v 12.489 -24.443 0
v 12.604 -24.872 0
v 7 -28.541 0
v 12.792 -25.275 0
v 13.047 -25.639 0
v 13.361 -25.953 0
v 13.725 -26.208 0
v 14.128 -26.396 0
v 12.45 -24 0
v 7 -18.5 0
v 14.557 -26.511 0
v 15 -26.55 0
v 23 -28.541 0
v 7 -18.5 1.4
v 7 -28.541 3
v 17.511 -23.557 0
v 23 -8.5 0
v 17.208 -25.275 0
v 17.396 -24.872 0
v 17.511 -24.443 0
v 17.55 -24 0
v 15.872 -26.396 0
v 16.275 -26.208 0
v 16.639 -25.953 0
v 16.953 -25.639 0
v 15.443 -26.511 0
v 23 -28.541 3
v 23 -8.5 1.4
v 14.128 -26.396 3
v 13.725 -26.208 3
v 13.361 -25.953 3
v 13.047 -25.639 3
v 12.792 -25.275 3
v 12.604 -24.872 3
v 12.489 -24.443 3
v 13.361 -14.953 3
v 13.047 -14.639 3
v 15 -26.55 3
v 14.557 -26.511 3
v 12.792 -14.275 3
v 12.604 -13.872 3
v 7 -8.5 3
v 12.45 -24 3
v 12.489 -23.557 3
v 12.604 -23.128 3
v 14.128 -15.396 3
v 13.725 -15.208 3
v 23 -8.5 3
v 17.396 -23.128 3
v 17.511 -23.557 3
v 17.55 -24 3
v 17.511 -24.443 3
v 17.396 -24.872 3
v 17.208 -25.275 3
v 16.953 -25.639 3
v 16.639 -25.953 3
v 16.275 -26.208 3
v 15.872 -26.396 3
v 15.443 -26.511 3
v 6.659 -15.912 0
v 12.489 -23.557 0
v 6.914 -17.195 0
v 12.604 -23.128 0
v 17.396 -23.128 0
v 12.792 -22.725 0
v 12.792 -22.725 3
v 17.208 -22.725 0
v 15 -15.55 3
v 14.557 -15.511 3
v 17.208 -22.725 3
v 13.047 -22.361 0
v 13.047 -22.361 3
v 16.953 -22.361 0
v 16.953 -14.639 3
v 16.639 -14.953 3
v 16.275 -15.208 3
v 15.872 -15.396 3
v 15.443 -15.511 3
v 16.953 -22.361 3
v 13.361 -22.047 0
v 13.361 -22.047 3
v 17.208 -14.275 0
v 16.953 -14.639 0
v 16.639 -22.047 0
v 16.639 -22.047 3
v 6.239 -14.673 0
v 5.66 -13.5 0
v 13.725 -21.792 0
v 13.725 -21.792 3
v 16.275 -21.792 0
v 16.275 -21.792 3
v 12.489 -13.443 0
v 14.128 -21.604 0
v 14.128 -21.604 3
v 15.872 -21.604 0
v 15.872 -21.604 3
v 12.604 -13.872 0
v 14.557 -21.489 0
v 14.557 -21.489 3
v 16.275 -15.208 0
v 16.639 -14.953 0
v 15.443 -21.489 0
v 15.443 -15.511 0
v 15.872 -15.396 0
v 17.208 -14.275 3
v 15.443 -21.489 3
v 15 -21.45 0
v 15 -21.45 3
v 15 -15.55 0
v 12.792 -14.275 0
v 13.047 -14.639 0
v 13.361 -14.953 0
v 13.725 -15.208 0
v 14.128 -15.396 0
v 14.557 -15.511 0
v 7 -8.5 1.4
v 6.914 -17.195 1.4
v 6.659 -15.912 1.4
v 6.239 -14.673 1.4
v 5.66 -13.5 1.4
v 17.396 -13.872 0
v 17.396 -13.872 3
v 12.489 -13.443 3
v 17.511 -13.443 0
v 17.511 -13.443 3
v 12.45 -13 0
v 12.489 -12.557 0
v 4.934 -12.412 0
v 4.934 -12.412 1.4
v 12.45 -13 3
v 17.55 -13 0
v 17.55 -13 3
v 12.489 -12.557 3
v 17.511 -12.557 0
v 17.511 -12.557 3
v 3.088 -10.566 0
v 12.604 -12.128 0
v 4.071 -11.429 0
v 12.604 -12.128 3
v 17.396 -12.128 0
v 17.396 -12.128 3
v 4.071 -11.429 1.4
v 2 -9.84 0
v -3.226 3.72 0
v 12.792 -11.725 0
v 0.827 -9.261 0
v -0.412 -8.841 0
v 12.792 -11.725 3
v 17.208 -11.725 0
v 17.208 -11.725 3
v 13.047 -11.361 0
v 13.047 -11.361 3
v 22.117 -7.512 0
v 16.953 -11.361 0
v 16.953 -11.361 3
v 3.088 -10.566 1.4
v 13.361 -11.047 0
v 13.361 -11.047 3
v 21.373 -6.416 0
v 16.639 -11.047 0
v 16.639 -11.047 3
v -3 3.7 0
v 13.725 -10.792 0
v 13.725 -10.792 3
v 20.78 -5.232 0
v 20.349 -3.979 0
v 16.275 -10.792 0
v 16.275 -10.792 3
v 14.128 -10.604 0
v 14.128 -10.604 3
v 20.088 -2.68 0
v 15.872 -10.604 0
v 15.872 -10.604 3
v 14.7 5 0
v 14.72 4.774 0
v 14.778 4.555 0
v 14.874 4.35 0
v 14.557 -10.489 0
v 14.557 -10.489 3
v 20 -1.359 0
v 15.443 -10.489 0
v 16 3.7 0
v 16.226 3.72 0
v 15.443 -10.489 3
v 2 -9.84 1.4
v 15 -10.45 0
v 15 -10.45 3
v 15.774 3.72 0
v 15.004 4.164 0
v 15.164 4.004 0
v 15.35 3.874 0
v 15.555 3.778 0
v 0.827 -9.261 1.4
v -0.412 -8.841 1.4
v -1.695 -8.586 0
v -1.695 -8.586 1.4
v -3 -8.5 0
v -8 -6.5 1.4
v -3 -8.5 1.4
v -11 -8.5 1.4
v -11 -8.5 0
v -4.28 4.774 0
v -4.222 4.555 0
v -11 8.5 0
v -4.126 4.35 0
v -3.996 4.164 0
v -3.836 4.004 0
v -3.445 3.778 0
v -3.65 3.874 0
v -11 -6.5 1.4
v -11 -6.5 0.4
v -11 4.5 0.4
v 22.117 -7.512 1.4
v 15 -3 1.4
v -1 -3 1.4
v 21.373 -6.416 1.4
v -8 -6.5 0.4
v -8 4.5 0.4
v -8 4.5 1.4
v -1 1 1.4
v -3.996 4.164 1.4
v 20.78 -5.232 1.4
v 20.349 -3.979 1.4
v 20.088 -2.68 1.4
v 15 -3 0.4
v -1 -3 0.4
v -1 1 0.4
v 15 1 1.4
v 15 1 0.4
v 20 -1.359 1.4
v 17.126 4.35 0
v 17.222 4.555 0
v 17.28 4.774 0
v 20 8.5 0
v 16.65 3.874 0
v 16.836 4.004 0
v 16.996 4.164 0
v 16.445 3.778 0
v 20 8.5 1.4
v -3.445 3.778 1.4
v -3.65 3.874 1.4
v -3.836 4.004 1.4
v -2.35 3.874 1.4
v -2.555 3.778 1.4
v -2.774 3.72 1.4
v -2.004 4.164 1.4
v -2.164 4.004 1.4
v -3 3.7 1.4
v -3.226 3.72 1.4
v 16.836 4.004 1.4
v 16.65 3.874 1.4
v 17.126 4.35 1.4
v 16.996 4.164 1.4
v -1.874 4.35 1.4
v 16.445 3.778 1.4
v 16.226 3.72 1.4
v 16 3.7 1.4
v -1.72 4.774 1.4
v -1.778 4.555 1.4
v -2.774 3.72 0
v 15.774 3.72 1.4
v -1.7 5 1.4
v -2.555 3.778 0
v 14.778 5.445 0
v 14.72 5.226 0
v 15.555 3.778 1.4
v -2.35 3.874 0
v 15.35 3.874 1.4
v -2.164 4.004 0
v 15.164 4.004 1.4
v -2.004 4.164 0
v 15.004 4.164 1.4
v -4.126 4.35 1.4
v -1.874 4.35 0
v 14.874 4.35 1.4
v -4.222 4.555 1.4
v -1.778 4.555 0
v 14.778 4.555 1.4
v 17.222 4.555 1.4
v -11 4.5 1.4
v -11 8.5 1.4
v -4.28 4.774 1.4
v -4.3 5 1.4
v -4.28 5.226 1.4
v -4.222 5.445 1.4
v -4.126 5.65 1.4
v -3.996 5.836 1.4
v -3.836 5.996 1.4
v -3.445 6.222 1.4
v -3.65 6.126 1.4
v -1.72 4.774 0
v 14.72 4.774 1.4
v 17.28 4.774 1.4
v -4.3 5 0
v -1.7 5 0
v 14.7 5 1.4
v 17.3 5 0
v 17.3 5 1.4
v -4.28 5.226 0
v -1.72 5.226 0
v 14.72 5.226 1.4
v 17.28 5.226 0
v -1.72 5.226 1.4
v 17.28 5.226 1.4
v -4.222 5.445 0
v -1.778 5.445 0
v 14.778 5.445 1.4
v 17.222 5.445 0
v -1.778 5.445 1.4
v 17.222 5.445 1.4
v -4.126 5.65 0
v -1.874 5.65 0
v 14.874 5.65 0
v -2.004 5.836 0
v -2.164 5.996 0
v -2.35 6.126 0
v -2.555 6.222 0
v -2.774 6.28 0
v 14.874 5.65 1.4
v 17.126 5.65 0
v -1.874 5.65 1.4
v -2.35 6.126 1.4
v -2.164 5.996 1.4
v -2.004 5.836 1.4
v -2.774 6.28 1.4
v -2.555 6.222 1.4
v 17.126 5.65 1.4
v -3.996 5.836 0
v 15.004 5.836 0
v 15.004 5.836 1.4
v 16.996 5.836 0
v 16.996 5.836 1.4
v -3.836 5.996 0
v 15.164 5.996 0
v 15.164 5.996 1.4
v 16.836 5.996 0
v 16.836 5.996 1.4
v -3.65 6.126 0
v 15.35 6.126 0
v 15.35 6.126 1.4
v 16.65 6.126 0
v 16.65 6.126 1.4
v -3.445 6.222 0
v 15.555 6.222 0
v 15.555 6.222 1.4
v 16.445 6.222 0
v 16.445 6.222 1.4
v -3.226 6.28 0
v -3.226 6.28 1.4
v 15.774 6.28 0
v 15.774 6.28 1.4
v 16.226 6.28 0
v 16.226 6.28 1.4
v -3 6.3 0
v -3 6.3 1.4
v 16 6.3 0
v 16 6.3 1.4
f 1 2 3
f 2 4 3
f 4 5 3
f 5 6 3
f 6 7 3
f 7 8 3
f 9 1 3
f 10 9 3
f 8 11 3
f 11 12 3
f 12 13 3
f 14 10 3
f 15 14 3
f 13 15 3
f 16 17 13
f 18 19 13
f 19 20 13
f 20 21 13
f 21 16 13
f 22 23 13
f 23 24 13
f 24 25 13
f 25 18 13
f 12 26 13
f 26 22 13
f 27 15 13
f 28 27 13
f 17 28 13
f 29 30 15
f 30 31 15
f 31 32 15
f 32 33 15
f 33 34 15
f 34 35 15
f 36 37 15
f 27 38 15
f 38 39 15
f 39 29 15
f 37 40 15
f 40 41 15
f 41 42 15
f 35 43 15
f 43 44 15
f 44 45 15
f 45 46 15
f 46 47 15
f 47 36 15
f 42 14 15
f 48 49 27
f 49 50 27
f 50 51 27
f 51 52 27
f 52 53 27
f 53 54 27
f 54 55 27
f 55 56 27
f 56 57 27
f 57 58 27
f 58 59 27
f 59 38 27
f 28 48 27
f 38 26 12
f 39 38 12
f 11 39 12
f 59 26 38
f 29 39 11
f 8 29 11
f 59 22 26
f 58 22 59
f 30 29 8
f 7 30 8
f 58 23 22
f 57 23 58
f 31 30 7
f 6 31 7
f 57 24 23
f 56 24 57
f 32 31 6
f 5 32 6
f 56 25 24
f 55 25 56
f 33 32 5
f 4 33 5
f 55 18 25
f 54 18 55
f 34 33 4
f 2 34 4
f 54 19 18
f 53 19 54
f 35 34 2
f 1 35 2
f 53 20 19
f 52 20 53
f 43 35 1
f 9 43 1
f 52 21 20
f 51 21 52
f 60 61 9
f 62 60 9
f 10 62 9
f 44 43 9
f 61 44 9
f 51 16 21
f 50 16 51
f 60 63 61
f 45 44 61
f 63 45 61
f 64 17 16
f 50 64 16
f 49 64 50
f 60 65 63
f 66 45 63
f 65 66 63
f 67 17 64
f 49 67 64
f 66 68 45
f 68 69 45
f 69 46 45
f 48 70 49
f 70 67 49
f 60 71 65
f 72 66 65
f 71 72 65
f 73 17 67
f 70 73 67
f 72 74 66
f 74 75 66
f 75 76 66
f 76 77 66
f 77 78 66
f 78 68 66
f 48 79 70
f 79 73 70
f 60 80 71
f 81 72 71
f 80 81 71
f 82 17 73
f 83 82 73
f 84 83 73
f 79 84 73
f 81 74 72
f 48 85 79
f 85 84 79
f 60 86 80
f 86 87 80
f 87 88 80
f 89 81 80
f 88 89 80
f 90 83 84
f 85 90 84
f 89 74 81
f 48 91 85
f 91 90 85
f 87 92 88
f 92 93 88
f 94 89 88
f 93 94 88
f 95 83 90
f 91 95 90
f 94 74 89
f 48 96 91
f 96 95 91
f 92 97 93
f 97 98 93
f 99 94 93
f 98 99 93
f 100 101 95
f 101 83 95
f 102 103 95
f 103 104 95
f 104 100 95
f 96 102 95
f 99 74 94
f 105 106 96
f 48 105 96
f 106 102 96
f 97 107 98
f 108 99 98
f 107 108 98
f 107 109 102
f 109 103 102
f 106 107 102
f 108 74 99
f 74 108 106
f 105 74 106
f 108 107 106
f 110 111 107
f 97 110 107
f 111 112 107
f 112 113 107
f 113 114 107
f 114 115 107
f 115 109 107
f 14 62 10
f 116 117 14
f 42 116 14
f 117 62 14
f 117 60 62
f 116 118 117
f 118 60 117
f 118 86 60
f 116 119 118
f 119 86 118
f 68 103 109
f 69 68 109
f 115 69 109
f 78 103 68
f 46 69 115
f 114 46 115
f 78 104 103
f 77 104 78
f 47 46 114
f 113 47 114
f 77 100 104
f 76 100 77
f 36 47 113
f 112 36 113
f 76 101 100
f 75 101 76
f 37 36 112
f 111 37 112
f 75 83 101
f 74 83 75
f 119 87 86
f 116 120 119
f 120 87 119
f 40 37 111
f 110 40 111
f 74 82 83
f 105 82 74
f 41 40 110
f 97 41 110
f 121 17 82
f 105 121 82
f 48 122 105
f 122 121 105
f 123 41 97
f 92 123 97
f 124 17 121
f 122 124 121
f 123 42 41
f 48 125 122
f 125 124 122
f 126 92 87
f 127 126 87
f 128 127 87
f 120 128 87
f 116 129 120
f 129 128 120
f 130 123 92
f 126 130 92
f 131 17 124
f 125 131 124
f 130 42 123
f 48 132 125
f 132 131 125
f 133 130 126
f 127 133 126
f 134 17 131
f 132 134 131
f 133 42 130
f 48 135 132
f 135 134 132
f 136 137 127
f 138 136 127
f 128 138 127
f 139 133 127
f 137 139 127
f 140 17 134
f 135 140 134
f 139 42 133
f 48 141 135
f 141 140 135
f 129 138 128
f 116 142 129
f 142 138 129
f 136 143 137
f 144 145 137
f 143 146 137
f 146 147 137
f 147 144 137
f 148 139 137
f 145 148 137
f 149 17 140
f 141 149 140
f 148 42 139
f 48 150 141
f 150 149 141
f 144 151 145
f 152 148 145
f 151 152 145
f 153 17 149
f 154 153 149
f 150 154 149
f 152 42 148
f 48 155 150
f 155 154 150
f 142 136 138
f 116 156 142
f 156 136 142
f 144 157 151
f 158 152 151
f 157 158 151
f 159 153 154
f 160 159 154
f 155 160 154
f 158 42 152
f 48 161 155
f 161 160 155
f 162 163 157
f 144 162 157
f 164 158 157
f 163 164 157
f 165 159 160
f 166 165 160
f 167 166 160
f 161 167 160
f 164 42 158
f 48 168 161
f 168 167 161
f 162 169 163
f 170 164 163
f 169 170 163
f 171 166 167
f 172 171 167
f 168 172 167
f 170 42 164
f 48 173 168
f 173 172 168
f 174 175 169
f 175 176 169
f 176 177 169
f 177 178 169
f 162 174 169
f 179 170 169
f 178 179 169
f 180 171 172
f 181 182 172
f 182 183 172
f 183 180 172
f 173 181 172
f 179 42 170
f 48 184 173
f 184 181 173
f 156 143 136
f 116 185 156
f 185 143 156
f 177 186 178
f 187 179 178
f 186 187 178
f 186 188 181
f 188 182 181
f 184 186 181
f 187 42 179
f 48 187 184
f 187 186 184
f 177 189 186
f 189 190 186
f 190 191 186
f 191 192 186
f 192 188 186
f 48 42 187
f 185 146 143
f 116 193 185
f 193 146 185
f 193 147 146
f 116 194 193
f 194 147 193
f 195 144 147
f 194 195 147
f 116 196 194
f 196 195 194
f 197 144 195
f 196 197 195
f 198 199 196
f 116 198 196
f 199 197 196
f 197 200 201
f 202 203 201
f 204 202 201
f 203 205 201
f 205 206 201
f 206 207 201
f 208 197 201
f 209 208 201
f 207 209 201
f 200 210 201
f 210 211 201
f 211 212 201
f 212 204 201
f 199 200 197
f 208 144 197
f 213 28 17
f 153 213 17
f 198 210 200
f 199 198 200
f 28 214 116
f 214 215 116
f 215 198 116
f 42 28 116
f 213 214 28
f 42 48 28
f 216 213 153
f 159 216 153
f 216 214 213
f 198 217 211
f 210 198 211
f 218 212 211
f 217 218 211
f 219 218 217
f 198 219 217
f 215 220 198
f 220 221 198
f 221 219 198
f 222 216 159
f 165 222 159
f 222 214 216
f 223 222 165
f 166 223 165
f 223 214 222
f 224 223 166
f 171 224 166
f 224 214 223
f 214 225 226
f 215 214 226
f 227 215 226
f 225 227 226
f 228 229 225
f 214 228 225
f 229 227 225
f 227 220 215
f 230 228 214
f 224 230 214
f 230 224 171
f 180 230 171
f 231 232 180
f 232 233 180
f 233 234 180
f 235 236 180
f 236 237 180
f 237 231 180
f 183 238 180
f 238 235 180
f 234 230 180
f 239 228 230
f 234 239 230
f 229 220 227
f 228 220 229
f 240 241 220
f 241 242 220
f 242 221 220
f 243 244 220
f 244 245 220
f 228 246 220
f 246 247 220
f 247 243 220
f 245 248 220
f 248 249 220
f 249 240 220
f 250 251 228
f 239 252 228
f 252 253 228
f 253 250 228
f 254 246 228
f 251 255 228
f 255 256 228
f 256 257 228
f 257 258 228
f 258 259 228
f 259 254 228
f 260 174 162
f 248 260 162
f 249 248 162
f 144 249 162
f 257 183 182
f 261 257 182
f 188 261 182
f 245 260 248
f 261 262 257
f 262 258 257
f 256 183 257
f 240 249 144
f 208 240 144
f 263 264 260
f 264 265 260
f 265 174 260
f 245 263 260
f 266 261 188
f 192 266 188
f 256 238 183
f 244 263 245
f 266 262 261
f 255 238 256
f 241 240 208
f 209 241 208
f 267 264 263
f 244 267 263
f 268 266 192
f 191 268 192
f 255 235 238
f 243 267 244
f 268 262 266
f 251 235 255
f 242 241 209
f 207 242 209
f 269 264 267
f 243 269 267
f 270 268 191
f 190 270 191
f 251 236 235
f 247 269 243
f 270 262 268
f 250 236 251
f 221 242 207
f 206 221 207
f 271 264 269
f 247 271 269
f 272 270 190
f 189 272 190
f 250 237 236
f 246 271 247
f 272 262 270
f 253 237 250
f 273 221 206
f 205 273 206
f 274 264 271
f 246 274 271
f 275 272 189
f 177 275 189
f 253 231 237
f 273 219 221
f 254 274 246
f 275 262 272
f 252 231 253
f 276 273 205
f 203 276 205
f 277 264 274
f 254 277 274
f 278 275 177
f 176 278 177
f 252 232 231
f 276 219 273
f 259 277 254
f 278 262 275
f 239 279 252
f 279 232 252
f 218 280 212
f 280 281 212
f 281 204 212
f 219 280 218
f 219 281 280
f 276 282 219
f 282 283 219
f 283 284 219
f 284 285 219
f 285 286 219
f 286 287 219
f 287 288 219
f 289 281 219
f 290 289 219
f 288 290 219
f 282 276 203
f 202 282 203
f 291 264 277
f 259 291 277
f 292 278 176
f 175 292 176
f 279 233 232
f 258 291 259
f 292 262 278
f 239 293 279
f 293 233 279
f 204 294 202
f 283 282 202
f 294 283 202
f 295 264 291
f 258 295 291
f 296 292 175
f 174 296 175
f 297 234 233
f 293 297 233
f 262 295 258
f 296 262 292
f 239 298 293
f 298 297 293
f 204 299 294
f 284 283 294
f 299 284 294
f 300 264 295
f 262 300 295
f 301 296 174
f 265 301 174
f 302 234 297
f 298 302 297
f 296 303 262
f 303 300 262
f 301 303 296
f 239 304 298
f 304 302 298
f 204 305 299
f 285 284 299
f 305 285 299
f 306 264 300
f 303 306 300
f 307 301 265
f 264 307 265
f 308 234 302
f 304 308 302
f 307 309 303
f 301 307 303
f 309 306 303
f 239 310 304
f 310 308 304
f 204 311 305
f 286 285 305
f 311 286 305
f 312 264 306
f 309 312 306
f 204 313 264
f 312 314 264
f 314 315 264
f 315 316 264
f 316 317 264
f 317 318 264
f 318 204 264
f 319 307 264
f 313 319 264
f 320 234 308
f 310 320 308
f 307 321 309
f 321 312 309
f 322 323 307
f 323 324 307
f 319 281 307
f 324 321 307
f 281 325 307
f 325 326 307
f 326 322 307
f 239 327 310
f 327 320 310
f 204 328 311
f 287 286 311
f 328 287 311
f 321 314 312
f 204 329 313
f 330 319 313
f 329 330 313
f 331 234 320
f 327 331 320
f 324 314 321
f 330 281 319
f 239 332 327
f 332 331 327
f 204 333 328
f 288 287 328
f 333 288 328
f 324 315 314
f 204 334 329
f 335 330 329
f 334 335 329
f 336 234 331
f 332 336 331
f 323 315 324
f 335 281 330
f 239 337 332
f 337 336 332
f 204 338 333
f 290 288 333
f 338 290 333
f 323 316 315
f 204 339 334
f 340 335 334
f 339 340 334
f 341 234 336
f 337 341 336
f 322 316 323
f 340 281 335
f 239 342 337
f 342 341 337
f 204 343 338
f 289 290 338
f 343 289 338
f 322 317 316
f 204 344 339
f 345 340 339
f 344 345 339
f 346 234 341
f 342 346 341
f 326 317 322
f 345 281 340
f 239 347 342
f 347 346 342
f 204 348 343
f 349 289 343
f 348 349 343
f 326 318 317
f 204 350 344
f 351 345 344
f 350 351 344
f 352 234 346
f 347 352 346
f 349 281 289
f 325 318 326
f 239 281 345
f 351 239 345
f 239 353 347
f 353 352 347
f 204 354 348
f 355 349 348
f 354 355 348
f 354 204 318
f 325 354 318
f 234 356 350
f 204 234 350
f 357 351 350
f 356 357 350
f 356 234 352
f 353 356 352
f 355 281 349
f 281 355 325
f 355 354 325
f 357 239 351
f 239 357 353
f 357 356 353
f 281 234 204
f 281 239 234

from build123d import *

# Parameters (mm, degrees)
SKETCH1_W           = 40
SKETCH1_H           = 17
BOSS_EXTRUDE1_DEPTH = 1.4
CUT_EXTRUDE1_START  = 1.4
SKETCH3_W           = 16
SKETCH3_H           = 4
SKETCH3_W_2         = 3
SKETCH3_H_2         = 11
CUT_EXTRUDE1_DEPTH  = 1
SKETCH4_R           = 1.3
CUT_EXTRUDE2_DEPTH  = 11
SKETCH7_W           = 9
SKETCH7_H           = 17
CUT_EXTRUDE5_DEPTH  = 21
SKETCH9_W           = 16
SKETCH9_H           = 20.041444064
SKETCH9_R           = 2.55
BOSS_EXTRUDE3_DEPTH = 3
FILLET1_R           = 10


with BuildPart() as part:
    # Sketch1 → Boss-Extrude1 (new body)
    with BuildSketch(Plane.XY):
        Rectangle(SKETCH1_W, SKETCH1_H)
    extrude(amount=BOSS_EXTRUDE1_DEPTH)

    # Sketch3 → Cut-Extrude1 (cut)
    with BuildSketch(Plane.XY.offset(CUT_EXTRUDE1_START)):
        with Locations((7, -1)):
            Rectangle(SKETCH3_W, SKETCH3_H)
        with Locations((-9.5, -1)):
            Rectangle(SKETCH3_W_2, SKETCH3_H_2)
    extrude(amount=-CUT_EXTRUDE1_DEPTH, mode=Mode.SUBTRACT)

    # Sketch4 → Cut-Extrude2 (cut)
    with BuildSketch(Plane.XY):
        with Locations(Location((16, 5, 0), (0, 0, 180))):
            Circle(SKETCH4_R)
        with Locations(Location((-3, 5, 0), (0, 0, 180))):
            Circle(SKETCH4_R)
    extrude(amount=CUT_EXTRUDE2_DEPTH, mode=Mode.SUBTRACT)

    # Sketch7 → Cut-Extrude5 (cut)
    with BuildSketch(Plane.XY):
        with Locations((-15.5, 0)):
            Rectangle(SKETCH7_W, SKETCH7_H)
    extrude(amount=CUT_EXTRUDE5_DEPTH, mode=Mode.SUBTRACT)

    # Sketch9 → Boss-Extrude3 (add)
    with BuildSketch(Plane.XY):
        with Locations((15, -18.520722032)):
            Rectangle(SKETCH9_W, SKETCH9_H)
        with Locations((15, -13)):
            Circle(SKETCH9_R, mode=Mode.SUBTRACT)
        with Locations((15, -24)):
            Circle(SKETCH9_R, mode=Mode.SUBTRACT)
    extrude(amount=BOSS_EXTRUDE3_DEPTH)

    # Fillet1
    # the kernel refuses this fillet: 10 mm, written as the material it adds along each edge
    with BuildSketch(Plane(origin=(7, -8.5, 0), x_dir=(-1, 0, 0), z_dir=(0, 0, 1))) as fillet1_piece_1:
        with BuildLine():
            CenterArc((FILLET1_R, FILLET1_R), FILLET1_R, 180, 90)
            Line((0, FILLET1_R), (0, 0))
            Line((0, 0), (FILLET1_R, 0))
        make_face()
    extrude(amount=1.4)
    with BuildSketch(Plane(origin=(20, -8.5, 0), x_dir=(0, 1, 0), z_dir=(0, 0, 1))) as fillet1_piece_2:
        with BuildLine():
            CenterArc((7.141428429, -10), FILLET1_R, 90, 45.572995999)
            Line((0, -3), (0, 0))
            Line((0, 0), (7.141428429, 0))
        make_face()
    extrude(amount=1.4)


solid = part.part
